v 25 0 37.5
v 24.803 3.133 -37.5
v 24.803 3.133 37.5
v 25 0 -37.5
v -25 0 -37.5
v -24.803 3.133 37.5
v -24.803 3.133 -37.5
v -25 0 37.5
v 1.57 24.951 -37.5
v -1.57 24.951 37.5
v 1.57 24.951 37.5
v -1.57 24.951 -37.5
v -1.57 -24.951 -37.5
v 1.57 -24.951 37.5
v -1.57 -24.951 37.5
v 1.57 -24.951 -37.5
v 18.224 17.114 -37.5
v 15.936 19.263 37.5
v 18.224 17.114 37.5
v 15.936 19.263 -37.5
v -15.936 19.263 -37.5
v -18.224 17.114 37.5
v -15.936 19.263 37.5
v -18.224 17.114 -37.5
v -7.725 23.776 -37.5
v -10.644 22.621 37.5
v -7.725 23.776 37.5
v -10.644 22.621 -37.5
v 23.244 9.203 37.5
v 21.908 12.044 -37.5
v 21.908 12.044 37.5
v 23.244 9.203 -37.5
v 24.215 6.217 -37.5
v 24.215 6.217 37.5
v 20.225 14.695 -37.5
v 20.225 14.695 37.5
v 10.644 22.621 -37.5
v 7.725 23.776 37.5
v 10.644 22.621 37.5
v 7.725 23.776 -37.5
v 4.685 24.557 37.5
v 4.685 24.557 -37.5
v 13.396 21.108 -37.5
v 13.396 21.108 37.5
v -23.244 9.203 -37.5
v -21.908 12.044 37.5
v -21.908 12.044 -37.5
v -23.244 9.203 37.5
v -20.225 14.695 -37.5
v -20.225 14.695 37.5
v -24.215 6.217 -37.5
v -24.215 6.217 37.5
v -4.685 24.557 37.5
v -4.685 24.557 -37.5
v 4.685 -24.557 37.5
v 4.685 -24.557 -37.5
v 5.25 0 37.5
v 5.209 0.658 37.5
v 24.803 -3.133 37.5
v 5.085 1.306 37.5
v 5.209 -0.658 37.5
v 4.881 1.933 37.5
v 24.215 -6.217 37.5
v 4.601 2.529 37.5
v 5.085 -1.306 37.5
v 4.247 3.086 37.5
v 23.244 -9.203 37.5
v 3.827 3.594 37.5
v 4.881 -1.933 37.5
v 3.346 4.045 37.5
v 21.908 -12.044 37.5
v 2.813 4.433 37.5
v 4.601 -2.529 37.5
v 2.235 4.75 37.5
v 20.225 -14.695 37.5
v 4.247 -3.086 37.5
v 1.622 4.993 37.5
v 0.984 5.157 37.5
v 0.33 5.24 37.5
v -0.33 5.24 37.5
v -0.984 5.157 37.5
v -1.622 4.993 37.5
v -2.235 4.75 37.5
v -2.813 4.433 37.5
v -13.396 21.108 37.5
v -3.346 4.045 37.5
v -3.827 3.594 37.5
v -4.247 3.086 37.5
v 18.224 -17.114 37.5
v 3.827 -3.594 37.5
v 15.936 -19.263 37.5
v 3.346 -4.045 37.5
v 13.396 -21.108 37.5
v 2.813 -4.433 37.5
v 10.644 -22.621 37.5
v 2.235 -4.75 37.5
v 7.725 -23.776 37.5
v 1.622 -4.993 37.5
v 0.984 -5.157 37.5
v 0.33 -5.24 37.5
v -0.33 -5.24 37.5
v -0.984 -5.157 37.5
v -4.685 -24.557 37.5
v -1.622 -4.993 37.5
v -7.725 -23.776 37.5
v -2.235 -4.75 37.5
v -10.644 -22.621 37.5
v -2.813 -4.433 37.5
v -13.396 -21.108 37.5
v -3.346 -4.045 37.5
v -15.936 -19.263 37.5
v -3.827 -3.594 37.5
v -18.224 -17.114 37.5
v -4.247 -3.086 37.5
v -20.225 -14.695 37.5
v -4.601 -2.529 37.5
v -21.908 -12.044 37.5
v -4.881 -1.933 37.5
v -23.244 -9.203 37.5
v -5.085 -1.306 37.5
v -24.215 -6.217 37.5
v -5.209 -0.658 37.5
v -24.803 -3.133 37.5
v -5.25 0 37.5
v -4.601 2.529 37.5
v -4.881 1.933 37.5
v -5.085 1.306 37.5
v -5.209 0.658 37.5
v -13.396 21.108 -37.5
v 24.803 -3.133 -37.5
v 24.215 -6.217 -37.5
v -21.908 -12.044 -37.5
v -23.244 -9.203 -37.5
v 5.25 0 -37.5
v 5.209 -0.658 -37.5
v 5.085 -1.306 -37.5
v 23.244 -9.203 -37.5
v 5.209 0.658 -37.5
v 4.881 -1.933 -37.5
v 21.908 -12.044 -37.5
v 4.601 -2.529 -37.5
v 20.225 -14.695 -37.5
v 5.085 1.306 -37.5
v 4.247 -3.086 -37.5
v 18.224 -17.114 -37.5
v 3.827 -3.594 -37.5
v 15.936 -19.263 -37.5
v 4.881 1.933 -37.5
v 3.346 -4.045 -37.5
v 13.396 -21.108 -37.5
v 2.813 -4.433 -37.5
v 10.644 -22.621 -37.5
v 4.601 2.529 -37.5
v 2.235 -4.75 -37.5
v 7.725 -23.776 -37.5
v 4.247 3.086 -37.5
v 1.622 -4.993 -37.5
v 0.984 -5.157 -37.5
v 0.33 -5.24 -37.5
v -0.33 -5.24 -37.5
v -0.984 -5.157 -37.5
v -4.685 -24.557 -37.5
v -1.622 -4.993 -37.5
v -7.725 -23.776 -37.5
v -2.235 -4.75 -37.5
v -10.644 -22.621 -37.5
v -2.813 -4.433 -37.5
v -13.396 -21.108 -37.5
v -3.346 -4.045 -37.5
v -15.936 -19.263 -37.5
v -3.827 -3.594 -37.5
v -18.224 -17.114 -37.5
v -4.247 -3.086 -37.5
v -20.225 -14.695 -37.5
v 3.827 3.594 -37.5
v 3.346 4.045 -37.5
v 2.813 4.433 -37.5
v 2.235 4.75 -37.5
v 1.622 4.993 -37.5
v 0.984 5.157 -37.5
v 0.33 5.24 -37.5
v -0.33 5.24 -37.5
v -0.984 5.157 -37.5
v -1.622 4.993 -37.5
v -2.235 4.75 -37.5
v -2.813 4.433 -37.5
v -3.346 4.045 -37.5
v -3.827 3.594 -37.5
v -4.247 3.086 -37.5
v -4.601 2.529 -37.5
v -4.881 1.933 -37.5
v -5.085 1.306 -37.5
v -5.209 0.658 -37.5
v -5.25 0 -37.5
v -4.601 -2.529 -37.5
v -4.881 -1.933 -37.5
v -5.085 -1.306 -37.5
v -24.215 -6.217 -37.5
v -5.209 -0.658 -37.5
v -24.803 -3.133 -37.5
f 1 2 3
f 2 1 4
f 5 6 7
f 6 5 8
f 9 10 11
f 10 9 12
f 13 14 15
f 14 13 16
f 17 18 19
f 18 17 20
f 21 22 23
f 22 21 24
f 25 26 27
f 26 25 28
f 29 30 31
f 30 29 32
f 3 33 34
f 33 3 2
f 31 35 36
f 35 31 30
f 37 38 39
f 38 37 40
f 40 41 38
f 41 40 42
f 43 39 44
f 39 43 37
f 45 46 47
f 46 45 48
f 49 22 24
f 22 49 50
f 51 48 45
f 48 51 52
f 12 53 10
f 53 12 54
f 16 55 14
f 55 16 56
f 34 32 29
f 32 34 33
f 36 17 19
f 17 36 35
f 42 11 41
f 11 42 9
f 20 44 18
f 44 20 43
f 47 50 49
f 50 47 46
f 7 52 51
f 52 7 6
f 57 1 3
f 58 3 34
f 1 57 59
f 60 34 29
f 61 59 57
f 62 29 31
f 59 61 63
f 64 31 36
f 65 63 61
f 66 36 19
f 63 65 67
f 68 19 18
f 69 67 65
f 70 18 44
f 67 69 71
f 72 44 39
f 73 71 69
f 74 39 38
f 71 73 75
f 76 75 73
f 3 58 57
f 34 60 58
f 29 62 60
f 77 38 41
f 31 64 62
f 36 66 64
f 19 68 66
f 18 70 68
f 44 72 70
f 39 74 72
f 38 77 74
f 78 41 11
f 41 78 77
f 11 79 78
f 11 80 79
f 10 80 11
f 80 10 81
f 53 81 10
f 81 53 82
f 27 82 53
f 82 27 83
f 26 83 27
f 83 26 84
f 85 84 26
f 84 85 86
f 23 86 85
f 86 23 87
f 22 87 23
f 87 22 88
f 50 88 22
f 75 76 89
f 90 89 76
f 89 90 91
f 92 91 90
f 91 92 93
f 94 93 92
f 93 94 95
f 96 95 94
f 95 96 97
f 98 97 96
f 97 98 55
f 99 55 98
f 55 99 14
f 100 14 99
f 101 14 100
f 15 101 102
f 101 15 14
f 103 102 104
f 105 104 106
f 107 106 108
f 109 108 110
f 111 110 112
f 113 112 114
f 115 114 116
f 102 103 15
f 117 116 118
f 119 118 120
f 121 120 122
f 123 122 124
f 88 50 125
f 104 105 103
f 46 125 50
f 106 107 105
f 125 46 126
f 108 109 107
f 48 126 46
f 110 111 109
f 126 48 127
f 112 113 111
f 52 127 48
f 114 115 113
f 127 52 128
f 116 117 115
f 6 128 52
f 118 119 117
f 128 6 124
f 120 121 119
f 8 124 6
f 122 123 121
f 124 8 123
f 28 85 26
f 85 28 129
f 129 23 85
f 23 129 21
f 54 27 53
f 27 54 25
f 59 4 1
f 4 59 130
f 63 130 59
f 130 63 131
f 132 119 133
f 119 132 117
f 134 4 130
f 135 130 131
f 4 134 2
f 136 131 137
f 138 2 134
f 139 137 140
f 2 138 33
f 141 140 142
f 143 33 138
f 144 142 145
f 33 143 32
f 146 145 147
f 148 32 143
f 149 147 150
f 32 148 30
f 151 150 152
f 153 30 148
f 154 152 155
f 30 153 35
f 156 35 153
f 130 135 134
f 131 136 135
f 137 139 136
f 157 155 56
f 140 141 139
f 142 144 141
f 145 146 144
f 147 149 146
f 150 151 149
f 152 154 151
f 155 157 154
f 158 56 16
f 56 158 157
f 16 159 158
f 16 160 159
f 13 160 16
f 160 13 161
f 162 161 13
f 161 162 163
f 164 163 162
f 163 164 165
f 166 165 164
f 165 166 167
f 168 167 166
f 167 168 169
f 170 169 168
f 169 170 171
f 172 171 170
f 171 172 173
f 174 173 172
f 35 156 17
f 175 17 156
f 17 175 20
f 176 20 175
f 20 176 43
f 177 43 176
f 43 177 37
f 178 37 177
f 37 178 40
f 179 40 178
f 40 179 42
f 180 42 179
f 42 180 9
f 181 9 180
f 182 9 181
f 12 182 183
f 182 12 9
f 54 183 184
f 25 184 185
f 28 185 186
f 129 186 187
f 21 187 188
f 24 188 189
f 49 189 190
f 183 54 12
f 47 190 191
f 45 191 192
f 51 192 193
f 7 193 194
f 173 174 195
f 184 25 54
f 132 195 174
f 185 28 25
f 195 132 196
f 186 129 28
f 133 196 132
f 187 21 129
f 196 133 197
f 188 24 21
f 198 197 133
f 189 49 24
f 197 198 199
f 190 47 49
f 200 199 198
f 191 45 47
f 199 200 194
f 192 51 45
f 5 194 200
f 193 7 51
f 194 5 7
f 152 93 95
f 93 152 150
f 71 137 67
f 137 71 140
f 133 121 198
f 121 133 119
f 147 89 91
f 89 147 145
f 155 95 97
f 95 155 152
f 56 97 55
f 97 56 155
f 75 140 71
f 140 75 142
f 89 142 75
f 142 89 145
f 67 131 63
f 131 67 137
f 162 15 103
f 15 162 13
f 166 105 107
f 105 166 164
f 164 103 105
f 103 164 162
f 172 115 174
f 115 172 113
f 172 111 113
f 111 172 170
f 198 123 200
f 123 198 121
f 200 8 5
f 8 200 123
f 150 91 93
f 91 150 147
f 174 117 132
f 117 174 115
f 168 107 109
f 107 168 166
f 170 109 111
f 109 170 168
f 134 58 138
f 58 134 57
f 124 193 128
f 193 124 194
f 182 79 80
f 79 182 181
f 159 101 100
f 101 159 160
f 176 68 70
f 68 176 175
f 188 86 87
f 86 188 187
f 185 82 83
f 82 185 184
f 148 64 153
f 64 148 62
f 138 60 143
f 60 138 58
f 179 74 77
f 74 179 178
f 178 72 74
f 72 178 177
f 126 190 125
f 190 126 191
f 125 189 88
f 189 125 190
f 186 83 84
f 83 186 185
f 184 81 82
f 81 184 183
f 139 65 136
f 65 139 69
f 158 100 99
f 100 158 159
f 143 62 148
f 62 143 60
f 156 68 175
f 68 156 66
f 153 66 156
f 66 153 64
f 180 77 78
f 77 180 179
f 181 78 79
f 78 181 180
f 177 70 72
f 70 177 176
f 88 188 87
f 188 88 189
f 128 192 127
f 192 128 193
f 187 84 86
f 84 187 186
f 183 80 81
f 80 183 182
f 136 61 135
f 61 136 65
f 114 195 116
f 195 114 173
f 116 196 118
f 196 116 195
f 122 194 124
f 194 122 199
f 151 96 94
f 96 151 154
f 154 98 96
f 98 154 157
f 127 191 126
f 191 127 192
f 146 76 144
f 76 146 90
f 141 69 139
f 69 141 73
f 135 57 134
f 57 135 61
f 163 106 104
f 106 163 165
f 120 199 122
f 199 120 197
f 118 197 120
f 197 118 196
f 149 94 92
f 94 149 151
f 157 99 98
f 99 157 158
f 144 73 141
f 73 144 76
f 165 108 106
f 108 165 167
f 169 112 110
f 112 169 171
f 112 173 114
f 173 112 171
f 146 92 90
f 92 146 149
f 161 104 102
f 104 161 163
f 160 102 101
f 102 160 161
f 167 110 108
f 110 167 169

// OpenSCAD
$fn = 50;


difference() {
	union() {
		translate(v = [0, 0, -37.5000000000]) {
			cylinder(h = 75, r = 25.0000000000);
		}
	}
	union() {
		translate(v = [0, 0, -100.0000000000]) {
			cylinder(h = 200, r = 5.2500000000);
		}
	}
}
